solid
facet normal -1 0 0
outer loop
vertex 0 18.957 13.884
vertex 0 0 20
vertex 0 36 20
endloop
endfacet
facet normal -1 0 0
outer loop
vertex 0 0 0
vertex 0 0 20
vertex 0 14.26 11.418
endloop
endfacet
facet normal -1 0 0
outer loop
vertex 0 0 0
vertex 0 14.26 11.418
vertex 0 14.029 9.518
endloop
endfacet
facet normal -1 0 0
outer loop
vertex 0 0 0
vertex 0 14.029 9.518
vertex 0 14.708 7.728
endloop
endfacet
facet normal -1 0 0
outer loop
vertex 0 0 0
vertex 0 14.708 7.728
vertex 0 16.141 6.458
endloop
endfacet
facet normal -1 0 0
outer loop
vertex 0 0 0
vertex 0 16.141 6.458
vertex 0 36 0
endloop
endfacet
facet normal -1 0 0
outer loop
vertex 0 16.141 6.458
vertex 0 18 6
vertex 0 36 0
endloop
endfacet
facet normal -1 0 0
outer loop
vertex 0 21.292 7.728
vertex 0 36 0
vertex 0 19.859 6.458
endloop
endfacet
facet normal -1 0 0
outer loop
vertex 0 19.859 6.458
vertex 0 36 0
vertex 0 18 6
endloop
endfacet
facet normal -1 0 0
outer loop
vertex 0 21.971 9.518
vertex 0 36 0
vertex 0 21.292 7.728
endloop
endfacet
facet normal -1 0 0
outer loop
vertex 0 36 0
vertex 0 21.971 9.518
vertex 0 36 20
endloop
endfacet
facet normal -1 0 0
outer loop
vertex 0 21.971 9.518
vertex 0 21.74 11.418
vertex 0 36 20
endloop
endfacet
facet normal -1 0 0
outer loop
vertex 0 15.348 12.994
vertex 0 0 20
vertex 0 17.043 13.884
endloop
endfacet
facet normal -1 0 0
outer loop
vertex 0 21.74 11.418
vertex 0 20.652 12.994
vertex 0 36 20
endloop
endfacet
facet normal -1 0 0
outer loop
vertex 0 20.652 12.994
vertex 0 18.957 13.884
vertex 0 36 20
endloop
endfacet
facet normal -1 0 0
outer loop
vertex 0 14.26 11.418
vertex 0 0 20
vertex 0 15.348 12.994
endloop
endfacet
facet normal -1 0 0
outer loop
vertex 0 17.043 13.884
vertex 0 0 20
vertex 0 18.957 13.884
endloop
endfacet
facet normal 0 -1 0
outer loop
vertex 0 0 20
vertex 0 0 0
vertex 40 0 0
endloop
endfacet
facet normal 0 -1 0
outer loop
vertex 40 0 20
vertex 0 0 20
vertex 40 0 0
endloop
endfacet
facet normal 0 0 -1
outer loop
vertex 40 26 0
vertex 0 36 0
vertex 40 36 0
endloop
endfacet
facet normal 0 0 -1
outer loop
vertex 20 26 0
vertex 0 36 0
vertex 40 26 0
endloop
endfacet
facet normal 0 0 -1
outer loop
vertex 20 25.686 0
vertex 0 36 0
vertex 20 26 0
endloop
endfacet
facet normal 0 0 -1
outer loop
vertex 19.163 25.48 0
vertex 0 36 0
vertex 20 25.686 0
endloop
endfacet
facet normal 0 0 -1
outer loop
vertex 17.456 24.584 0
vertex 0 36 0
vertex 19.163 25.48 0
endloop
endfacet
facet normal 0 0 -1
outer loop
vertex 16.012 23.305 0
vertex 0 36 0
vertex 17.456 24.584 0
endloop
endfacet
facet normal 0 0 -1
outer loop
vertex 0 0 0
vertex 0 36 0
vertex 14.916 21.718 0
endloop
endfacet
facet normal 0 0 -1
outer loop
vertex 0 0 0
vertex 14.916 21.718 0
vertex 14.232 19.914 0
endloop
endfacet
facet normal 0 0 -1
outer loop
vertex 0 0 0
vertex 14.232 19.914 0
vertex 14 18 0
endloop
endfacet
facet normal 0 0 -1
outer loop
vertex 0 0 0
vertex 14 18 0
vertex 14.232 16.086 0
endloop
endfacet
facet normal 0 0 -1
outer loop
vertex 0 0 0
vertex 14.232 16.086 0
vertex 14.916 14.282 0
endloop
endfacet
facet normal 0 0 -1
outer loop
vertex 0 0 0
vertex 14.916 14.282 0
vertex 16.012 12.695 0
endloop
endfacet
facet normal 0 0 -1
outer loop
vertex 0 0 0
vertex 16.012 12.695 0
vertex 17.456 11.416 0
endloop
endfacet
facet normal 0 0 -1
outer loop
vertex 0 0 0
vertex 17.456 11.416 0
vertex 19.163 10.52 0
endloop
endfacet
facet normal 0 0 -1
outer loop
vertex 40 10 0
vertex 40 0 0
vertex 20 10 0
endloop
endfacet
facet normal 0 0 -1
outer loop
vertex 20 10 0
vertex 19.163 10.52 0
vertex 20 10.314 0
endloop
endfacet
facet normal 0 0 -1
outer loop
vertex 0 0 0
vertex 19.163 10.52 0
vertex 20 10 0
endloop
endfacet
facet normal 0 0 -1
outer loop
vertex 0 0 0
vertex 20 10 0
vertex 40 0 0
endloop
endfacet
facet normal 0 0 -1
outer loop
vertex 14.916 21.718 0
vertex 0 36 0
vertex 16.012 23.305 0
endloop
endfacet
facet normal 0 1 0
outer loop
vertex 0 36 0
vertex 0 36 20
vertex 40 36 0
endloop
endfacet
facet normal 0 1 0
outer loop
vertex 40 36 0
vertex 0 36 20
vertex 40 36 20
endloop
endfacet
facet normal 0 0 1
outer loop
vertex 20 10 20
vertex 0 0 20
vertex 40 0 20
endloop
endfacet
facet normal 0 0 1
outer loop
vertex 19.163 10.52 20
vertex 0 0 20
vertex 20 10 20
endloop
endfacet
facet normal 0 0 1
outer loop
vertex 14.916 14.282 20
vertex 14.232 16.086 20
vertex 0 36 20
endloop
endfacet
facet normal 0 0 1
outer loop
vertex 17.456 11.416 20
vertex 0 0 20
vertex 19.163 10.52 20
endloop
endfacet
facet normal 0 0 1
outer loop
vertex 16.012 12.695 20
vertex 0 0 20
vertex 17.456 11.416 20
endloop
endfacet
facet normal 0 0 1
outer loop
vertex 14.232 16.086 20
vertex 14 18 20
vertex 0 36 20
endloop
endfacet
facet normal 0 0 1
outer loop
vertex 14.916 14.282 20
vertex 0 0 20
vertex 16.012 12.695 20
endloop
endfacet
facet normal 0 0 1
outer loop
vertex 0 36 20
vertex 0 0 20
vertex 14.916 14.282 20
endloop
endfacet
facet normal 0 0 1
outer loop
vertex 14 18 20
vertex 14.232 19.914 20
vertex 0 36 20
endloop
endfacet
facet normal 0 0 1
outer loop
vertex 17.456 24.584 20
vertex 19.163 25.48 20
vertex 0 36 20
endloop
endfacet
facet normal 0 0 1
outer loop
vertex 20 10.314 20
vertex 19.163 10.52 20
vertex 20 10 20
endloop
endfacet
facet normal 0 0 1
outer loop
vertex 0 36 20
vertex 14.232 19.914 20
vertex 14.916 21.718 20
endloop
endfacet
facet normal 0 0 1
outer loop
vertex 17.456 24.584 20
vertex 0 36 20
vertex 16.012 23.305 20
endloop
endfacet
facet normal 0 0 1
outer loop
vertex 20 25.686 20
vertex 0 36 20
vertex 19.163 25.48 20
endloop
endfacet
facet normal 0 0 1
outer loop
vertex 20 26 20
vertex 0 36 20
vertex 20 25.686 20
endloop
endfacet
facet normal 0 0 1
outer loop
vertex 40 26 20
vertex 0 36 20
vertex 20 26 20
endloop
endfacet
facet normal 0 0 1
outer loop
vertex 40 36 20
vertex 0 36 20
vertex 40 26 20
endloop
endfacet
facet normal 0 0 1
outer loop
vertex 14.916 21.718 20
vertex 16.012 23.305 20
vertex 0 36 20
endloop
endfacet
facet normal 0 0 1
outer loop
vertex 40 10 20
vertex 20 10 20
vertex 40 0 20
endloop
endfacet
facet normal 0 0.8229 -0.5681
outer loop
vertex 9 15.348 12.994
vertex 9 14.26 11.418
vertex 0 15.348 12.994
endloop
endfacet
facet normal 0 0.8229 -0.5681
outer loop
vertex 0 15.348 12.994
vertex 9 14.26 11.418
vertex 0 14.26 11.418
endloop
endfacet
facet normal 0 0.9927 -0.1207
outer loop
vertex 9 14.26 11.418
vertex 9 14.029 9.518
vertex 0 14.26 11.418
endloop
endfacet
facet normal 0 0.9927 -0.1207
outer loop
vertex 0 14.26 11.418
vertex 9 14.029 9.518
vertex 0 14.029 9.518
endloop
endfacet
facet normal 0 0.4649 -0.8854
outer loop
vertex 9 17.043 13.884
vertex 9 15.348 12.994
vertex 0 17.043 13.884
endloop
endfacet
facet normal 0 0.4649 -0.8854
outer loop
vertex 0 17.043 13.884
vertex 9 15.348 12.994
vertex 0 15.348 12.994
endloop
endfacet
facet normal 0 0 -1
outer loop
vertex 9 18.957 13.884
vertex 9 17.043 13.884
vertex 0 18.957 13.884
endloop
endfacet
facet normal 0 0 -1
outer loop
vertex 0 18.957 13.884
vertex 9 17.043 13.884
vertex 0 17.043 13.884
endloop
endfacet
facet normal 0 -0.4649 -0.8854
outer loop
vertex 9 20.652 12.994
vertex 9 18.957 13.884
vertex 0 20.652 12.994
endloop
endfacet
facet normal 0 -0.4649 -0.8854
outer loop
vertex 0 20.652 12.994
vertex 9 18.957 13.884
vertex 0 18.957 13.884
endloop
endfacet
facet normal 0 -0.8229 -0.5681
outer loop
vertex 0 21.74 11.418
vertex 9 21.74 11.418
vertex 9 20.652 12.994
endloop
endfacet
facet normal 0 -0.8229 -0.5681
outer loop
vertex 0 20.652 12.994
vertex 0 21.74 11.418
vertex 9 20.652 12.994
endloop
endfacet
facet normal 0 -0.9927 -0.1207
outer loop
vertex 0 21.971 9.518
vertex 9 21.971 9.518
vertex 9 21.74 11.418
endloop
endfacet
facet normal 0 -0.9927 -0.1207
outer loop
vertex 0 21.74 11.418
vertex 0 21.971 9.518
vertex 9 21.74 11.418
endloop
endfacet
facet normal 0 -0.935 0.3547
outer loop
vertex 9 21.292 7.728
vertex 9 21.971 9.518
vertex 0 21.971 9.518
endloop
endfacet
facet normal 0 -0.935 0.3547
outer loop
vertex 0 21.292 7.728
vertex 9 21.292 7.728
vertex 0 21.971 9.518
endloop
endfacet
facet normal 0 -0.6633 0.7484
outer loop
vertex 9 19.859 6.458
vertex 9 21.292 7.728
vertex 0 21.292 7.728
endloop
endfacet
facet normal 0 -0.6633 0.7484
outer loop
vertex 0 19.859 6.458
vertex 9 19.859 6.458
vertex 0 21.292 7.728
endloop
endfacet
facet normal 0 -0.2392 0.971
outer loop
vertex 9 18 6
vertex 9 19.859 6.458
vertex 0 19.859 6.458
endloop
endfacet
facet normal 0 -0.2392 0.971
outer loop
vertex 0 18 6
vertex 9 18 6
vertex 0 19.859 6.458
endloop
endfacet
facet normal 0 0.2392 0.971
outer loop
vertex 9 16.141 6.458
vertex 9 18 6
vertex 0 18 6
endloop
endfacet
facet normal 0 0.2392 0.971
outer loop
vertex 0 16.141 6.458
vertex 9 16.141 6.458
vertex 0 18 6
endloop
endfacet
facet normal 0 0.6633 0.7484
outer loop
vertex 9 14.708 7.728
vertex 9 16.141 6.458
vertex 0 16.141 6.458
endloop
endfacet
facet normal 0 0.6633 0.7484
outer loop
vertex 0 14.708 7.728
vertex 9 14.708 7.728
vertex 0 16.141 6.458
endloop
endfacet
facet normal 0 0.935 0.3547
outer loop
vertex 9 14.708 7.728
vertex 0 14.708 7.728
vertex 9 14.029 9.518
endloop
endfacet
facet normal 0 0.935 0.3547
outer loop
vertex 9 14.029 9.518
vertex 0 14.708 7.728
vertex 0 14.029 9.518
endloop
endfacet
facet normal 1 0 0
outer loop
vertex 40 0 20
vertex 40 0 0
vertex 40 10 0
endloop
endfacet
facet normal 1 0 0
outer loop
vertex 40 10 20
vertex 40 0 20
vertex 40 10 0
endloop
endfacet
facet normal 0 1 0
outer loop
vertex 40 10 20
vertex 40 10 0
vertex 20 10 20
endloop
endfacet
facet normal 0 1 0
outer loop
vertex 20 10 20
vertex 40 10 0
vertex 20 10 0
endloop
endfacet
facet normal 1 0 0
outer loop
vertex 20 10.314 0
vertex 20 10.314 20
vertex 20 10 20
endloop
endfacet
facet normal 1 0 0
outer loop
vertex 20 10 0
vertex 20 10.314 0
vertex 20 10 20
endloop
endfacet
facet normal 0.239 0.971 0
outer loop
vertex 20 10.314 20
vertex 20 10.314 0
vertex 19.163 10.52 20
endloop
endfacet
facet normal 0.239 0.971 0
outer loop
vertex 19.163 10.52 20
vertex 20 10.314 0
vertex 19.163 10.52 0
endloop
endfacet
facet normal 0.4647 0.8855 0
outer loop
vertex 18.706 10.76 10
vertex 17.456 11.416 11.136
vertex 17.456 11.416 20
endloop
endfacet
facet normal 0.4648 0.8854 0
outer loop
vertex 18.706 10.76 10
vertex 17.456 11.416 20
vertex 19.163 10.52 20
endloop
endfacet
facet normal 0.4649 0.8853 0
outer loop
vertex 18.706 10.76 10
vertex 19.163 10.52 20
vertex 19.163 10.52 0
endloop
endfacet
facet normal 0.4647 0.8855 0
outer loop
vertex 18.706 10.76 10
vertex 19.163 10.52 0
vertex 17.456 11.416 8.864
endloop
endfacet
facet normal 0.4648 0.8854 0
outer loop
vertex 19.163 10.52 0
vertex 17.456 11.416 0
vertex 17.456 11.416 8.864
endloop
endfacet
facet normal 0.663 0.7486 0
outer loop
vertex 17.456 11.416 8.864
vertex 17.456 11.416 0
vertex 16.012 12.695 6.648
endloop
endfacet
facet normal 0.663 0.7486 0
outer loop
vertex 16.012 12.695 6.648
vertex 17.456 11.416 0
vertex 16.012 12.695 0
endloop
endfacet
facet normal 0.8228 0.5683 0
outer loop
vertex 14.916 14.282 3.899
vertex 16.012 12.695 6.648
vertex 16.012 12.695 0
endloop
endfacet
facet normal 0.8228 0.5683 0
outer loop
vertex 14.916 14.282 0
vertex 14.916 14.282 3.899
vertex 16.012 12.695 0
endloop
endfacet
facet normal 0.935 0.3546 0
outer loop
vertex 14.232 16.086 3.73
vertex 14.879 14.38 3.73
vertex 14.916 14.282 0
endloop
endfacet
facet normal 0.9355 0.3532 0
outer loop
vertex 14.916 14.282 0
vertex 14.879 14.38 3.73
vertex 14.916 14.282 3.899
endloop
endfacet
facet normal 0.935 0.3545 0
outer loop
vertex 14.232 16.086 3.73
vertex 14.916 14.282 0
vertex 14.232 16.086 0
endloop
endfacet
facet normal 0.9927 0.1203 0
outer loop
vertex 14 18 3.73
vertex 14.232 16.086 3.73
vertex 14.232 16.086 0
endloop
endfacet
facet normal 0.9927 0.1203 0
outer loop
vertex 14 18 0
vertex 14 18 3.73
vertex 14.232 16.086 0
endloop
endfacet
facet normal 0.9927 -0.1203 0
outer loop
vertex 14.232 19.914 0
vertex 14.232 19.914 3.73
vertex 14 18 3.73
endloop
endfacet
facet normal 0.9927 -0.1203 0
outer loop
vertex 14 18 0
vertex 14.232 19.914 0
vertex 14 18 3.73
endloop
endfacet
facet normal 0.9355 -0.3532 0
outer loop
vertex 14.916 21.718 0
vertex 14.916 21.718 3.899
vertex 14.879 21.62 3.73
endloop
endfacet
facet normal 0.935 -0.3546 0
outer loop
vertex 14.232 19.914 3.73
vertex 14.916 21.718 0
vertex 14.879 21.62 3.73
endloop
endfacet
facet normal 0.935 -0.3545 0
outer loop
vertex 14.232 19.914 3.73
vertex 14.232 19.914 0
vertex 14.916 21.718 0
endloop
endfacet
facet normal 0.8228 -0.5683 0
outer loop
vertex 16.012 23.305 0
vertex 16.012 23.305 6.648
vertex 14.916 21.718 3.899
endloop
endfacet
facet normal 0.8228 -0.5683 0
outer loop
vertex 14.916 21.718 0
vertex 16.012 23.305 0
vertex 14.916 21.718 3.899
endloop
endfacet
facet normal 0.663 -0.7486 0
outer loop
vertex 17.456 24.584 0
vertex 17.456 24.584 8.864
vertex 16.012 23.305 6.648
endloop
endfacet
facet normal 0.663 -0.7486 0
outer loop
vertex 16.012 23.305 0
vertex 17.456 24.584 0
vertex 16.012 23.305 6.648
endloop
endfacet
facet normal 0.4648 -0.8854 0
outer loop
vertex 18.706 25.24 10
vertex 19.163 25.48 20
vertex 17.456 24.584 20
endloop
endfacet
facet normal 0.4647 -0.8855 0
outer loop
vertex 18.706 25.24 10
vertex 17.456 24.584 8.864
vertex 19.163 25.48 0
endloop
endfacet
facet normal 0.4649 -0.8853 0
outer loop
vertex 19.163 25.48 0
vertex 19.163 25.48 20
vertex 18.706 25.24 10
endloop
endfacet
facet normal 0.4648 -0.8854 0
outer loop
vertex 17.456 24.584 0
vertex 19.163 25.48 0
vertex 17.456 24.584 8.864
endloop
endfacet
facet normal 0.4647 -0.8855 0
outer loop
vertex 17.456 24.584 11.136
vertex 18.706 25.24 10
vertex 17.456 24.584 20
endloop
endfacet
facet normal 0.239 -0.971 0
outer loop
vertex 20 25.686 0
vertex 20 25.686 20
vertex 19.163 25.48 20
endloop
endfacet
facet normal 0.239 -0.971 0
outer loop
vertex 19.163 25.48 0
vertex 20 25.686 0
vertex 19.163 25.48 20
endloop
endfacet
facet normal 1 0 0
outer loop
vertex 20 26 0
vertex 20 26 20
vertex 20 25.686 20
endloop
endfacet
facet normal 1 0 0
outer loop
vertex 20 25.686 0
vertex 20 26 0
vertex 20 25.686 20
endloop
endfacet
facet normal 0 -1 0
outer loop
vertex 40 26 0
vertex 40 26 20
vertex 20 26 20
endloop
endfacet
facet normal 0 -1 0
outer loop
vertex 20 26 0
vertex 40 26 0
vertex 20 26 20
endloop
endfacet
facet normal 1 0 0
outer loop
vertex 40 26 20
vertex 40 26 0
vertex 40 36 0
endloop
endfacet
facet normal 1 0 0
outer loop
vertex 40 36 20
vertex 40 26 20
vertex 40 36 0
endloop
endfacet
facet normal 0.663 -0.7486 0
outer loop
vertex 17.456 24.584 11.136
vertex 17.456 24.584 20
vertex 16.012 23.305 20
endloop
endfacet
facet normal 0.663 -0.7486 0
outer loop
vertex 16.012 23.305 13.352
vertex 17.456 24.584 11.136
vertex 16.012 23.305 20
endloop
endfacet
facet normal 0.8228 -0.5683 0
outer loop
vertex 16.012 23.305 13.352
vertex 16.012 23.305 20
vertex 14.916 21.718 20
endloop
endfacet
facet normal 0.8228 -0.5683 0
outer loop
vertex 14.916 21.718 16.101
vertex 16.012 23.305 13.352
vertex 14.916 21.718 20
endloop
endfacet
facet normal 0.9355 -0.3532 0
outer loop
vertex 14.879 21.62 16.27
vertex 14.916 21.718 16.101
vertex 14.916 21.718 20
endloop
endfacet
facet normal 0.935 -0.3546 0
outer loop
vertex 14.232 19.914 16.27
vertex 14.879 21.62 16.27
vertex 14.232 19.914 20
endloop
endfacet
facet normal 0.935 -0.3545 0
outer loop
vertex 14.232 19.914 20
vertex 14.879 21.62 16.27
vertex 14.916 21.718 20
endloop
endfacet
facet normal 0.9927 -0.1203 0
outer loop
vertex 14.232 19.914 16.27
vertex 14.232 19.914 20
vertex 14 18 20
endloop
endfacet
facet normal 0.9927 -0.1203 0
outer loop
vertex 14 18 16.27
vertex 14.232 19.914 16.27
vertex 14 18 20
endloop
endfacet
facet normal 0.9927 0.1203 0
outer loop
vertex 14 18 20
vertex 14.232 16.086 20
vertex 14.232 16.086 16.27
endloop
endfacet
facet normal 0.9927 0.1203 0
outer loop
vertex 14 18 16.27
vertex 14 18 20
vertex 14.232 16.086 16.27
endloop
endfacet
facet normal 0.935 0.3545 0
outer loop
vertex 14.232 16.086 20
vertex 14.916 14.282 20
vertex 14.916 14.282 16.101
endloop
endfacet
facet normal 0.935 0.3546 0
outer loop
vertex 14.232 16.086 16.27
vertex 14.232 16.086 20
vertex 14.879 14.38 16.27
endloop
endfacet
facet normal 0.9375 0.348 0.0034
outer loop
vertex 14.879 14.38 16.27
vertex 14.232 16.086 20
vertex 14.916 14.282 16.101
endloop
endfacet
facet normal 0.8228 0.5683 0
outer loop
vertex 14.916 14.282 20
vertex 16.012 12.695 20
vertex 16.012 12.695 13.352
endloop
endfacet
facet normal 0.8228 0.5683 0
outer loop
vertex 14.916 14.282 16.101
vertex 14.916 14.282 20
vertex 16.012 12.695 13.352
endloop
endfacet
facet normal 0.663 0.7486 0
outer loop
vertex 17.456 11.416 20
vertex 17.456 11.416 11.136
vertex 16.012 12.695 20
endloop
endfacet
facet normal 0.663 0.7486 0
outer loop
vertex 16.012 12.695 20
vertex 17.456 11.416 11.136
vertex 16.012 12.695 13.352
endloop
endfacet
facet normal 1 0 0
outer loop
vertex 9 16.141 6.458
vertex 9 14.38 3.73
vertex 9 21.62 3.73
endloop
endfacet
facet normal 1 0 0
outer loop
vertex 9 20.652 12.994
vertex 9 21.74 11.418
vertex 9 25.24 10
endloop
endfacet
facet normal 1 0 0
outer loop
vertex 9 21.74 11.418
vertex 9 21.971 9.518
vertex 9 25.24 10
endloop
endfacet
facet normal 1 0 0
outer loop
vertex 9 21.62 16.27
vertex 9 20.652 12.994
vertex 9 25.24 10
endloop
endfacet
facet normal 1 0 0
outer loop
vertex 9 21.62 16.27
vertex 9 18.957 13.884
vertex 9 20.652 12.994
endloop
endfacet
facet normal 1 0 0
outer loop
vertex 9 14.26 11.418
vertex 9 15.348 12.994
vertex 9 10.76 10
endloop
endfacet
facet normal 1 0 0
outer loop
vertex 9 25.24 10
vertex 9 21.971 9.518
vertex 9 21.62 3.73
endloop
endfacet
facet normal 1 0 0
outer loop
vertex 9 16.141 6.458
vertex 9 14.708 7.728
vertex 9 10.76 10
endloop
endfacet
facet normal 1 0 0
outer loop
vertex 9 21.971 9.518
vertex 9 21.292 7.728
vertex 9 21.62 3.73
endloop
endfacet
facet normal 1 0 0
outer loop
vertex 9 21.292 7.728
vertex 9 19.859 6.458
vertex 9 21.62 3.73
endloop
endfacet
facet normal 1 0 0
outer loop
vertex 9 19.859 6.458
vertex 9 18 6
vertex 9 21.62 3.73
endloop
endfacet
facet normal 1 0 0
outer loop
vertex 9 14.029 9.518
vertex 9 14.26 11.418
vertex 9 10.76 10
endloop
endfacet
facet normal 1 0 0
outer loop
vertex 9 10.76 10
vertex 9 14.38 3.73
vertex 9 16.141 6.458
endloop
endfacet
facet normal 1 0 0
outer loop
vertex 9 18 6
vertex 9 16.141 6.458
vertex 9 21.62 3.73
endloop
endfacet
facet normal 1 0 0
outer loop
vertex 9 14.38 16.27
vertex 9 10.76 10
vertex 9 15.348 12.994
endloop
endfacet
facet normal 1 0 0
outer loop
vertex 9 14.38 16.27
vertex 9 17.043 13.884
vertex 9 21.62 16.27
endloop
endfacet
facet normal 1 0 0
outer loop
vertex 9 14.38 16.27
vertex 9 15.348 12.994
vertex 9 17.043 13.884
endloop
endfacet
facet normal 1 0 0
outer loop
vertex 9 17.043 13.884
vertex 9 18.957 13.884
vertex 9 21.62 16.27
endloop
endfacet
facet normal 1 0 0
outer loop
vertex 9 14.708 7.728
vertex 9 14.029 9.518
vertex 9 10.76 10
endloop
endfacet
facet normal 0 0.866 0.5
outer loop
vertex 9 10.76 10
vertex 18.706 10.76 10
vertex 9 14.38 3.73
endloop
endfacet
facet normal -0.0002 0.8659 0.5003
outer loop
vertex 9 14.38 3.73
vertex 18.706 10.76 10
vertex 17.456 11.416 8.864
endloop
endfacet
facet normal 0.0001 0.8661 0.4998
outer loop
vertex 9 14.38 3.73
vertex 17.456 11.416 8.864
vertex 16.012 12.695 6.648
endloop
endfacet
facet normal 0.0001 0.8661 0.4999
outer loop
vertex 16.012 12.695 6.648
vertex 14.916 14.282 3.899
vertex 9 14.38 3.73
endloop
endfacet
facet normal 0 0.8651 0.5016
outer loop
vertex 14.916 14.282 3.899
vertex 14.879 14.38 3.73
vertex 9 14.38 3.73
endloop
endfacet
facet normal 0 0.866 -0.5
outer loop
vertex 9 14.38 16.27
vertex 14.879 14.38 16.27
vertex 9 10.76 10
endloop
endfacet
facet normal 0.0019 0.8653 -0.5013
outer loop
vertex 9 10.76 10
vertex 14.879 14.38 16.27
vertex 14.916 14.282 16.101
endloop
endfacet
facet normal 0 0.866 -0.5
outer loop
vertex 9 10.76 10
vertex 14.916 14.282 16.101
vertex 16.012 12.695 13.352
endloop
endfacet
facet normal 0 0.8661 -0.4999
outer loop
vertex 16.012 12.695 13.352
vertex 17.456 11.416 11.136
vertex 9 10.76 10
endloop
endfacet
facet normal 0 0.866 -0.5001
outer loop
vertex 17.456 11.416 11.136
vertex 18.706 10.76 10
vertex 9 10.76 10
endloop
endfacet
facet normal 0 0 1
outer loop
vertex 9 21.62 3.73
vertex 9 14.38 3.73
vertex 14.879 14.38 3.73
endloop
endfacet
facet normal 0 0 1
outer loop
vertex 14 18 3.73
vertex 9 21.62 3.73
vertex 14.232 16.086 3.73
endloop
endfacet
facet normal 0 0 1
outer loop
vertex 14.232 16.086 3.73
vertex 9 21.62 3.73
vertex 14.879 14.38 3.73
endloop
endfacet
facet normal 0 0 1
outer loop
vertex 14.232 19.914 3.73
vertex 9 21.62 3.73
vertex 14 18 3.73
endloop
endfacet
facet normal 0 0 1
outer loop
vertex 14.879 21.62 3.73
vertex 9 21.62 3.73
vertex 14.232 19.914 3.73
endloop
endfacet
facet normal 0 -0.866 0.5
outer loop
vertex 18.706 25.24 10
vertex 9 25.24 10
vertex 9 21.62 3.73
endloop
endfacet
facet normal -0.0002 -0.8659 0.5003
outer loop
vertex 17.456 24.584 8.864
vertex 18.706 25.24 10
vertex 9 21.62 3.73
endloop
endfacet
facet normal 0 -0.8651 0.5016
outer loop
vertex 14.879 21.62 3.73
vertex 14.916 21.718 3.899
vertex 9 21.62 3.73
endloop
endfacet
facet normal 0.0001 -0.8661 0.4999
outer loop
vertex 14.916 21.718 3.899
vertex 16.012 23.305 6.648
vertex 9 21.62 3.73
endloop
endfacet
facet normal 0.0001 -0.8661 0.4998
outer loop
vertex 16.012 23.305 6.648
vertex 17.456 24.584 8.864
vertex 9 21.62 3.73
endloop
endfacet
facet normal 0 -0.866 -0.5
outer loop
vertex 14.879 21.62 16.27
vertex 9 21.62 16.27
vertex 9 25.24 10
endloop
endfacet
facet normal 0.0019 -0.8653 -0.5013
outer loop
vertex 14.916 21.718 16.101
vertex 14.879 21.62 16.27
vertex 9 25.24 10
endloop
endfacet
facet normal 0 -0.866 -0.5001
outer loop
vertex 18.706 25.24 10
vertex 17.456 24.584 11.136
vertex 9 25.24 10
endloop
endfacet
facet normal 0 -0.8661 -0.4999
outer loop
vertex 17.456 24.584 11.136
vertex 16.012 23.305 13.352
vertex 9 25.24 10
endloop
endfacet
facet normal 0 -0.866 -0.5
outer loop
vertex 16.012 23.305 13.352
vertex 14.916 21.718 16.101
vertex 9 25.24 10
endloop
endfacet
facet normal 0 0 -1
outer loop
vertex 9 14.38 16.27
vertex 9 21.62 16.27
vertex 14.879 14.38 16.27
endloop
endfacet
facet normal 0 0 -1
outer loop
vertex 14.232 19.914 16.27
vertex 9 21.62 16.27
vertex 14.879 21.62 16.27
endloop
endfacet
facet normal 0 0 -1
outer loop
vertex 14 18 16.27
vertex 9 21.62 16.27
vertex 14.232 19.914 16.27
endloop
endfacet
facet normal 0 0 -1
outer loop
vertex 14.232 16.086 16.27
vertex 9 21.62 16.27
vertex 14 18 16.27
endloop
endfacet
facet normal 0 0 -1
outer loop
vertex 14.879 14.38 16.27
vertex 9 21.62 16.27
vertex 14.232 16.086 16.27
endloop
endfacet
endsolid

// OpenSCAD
module hex(h,w) 
{
	difference()
	{
		cylinder(h=h,r=w,center=true,$fs=1);
		translate([w,0,0])cube(size=[w,w,h*2],center=true);
		translate([-w,0,0])cube(size=[w,w,h*2],center=true);
		rotate(a=[0,0,120])
		{
			translate([w,0,0])cube(size=[w,w,h*2],center=true);
			translate([-w,0,0])cube(size=[w,w,h*2],center=true);
		};
		rotate(a=[0,0,240])
		{
			translate([w,0,0])cube(size=[w,w,h*2],center=true);
			translate([-w,0,0])cube(size=[w,w,h*2],center=true);
		};
	};
};

difference()
{
	cube([40,36,20]);
	translate([20,10,-5]) cube ([24,16,40]);
	translate([22,18,-5]) cylinder(d=16, h=40);
	translate([14,18,10])rotate([0,90,0]) hex(10,12.54);
	translate([-5,18,10])rotate([0,90,0]) cylinder(r=4,h=40);
}
